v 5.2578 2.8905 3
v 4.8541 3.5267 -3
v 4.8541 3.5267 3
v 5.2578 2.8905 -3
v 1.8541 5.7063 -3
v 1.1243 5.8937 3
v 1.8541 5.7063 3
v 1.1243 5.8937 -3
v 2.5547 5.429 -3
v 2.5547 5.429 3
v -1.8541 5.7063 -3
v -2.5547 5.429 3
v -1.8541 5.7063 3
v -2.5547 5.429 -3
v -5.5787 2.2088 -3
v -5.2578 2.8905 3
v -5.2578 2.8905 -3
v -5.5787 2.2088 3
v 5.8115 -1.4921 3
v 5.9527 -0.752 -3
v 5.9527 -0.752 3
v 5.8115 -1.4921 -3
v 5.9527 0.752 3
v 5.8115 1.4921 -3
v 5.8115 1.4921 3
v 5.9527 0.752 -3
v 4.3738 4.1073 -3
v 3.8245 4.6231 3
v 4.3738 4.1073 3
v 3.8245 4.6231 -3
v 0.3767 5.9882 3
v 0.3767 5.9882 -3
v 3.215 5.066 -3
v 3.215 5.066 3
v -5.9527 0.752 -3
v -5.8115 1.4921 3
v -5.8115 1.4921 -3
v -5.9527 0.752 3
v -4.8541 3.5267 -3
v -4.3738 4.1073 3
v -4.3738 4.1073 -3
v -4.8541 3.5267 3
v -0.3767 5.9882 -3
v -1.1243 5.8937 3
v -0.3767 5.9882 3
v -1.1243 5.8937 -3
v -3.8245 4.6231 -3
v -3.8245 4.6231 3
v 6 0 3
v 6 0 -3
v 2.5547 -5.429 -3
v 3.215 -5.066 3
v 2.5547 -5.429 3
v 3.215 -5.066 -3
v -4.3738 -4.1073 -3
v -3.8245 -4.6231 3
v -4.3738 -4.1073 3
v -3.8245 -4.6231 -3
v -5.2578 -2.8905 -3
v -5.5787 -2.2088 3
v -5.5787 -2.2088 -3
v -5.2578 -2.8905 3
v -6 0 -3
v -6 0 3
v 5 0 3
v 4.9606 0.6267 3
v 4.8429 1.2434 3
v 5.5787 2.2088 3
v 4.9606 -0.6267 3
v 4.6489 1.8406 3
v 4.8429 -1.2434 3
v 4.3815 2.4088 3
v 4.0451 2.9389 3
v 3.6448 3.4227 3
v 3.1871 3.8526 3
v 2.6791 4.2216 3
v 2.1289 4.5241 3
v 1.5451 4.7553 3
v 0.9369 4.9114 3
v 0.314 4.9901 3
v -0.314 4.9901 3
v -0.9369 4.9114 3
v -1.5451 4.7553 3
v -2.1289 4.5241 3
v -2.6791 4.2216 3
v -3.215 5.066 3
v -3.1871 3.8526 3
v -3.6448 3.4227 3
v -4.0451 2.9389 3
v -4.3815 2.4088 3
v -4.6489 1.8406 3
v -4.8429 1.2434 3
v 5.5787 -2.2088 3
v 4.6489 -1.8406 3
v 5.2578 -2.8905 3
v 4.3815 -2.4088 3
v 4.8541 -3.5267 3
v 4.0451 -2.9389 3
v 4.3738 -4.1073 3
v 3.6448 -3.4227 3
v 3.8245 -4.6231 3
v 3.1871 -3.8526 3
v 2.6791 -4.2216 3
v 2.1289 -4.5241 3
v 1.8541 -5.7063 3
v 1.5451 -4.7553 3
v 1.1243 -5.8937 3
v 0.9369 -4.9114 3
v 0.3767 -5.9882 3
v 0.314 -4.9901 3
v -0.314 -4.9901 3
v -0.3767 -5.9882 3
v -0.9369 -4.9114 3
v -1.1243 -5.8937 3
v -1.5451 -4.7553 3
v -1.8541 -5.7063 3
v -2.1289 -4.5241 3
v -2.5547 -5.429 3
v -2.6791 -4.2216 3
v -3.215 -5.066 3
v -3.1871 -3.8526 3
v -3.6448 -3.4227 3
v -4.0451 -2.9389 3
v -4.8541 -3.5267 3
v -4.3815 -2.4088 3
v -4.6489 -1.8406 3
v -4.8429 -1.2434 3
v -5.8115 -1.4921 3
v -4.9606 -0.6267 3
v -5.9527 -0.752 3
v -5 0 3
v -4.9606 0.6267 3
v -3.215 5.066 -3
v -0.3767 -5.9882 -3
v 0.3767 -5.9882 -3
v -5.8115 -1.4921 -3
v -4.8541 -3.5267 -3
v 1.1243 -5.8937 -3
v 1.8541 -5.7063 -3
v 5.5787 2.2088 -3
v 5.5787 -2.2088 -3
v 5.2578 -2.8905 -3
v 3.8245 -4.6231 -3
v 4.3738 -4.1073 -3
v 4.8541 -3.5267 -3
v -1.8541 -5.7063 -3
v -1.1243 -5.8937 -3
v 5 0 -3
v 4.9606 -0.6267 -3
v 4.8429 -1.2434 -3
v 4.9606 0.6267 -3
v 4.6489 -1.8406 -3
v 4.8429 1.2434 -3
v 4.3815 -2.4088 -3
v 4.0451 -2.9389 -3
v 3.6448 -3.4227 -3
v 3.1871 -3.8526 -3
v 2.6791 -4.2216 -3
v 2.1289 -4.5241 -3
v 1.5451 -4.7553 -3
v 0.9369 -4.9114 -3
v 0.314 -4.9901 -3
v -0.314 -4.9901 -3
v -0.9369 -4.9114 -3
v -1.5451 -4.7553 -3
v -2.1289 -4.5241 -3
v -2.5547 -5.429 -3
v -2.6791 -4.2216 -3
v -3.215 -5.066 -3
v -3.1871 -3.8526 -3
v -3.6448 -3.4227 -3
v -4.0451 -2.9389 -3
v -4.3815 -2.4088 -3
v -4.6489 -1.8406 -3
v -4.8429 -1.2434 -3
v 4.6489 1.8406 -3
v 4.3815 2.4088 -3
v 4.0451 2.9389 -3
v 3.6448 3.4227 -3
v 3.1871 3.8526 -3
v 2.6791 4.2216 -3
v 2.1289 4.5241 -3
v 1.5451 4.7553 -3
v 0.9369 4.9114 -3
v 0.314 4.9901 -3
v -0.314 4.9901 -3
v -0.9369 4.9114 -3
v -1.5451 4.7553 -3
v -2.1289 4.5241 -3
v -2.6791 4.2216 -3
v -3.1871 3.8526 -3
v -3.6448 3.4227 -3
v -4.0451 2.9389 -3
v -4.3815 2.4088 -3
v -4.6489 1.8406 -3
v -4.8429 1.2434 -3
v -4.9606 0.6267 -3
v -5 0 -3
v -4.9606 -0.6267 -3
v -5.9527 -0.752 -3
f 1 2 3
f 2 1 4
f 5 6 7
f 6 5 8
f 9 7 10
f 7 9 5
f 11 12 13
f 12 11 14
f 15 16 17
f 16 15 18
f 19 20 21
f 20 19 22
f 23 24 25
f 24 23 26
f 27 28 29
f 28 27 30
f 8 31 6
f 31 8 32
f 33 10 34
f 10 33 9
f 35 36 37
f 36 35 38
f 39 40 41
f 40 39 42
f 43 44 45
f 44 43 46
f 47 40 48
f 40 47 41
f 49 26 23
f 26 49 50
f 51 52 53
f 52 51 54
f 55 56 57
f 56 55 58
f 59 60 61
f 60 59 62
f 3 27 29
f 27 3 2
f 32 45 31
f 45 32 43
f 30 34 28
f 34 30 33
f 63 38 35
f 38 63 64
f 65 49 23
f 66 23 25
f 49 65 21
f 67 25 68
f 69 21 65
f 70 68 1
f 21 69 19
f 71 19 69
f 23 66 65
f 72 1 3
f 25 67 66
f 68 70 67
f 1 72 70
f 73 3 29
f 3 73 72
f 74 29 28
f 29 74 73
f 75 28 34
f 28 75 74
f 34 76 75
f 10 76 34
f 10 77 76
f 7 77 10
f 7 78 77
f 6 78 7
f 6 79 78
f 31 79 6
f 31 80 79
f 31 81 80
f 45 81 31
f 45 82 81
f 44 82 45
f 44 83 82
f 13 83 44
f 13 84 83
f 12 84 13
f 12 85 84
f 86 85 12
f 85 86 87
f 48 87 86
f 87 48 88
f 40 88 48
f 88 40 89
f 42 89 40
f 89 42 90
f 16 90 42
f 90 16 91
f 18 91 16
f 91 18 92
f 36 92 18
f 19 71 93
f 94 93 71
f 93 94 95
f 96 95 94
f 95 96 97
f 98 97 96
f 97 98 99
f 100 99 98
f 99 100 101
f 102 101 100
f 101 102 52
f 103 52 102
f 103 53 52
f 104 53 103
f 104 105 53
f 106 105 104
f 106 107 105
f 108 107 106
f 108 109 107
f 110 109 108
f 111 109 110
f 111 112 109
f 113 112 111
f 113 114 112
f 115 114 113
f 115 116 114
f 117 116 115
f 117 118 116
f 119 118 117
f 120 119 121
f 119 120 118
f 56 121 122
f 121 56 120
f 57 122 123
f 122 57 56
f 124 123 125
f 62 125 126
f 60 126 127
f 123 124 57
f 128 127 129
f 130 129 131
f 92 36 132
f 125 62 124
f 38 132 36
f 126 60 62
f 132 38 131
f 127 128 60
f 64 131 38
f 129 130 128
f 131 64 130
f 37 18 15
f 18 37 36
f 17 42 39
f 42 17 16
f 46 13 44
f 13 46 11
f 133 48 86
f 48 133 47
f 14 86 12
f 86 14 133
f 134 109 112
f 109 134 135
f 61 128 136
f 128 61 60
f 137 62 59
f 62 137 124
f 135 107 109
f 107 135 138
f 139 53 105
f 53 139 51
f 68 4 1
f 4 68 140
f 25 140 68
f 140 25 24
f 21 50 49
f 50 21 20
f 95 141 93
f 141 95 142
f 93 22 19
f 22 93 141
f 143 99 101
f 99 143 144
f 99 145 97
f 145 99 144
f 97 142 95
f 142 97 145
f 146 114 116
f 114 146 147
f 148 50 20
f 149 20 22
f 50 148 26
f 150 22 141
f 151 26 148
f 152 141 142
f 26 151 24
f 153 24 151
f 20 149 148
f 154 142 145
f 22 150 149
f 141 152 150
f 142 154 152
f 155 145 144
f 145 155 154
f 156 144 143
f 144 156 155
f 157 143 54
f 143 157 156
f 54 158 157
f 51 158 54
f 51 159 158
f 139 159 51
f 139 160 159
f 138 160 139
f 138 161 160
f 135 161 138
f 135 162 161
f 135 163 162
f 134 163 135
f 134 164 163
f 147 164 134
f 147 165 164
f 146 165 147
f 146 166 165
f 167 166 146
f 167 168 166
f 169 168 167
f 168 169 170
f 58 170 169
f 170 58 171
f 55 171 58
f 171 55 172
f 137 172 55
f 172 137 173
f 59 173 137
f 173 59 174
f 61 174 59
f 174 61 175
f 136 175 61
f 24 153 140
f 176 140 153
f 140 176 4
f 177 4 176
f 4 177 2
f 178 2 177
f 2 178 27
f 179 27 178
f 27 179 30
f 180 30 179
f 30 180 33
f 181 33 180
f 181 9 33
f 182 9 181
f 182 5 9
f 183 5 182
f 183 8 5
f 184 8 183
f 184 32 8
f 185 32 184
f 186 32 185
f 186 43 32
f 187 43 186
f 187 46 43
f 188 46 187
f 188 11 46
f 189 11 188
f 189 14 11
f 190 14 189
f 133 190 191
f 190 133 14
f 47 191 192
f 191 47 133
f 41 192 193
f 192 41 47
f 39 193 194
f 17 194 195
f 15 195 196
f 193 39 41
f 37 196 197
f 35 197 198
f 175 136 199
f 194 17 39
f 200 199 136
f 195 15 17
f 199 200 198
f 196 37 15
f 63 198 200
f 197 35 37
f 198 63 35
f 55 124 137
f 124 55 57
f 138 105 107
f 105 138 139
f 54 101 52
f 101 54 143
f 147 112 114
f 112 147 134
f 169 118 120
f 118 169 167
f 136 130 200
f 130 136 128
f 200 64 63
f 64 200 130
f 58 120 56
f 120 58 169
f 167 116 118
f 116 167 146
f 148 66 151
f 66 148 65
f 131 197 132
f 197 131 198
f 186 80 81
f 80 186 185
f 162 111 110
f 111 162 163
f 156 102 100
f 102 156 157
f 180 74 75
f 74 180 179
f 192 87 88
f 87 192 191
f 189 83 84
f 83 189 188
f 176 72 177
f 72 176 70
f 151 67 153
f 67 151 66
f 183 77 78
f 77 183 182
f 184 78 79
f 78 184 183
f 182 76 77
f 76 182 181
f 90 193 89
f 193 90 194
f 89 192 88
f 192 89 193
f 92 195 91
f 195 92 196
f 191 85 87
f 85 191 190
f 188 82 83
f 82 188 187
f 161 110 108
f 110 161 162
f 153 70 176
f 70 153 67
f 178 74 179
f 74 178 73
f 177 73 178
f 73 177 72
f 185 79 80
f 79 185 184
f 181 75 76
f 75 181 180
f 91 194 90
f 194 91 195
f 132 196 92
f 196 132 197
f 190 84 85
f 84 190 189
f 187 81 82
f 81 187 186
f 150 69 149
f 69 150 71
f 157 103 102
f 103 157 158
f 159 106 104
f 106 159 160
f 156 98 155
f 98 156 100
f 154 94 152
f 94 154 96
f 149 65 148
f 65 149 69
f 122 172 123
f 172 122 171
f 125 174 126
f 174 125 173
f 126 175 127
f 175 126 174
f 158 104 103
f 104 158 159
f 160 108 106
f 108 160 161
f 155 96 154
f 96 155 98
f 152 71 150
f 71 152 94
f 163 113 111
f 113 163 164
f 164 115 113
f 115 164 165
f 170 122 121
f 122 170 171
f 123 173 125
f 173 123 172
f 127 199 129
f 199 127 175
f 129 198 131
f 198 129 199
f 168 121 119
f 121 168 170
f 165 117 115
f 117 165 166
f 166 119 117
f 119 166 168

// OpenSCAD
$fn = 50;


difference() {
	union() {
		translate(v = [0, 0, -3.0000000000]) {
			cylinder(h = 6, r = 6.0000000000);
		}
	}
	union() {
		translate(v = [0, 0, -100.0000000000]) {
			cylinder(h = 200, r = 5);
		}
	}
}
